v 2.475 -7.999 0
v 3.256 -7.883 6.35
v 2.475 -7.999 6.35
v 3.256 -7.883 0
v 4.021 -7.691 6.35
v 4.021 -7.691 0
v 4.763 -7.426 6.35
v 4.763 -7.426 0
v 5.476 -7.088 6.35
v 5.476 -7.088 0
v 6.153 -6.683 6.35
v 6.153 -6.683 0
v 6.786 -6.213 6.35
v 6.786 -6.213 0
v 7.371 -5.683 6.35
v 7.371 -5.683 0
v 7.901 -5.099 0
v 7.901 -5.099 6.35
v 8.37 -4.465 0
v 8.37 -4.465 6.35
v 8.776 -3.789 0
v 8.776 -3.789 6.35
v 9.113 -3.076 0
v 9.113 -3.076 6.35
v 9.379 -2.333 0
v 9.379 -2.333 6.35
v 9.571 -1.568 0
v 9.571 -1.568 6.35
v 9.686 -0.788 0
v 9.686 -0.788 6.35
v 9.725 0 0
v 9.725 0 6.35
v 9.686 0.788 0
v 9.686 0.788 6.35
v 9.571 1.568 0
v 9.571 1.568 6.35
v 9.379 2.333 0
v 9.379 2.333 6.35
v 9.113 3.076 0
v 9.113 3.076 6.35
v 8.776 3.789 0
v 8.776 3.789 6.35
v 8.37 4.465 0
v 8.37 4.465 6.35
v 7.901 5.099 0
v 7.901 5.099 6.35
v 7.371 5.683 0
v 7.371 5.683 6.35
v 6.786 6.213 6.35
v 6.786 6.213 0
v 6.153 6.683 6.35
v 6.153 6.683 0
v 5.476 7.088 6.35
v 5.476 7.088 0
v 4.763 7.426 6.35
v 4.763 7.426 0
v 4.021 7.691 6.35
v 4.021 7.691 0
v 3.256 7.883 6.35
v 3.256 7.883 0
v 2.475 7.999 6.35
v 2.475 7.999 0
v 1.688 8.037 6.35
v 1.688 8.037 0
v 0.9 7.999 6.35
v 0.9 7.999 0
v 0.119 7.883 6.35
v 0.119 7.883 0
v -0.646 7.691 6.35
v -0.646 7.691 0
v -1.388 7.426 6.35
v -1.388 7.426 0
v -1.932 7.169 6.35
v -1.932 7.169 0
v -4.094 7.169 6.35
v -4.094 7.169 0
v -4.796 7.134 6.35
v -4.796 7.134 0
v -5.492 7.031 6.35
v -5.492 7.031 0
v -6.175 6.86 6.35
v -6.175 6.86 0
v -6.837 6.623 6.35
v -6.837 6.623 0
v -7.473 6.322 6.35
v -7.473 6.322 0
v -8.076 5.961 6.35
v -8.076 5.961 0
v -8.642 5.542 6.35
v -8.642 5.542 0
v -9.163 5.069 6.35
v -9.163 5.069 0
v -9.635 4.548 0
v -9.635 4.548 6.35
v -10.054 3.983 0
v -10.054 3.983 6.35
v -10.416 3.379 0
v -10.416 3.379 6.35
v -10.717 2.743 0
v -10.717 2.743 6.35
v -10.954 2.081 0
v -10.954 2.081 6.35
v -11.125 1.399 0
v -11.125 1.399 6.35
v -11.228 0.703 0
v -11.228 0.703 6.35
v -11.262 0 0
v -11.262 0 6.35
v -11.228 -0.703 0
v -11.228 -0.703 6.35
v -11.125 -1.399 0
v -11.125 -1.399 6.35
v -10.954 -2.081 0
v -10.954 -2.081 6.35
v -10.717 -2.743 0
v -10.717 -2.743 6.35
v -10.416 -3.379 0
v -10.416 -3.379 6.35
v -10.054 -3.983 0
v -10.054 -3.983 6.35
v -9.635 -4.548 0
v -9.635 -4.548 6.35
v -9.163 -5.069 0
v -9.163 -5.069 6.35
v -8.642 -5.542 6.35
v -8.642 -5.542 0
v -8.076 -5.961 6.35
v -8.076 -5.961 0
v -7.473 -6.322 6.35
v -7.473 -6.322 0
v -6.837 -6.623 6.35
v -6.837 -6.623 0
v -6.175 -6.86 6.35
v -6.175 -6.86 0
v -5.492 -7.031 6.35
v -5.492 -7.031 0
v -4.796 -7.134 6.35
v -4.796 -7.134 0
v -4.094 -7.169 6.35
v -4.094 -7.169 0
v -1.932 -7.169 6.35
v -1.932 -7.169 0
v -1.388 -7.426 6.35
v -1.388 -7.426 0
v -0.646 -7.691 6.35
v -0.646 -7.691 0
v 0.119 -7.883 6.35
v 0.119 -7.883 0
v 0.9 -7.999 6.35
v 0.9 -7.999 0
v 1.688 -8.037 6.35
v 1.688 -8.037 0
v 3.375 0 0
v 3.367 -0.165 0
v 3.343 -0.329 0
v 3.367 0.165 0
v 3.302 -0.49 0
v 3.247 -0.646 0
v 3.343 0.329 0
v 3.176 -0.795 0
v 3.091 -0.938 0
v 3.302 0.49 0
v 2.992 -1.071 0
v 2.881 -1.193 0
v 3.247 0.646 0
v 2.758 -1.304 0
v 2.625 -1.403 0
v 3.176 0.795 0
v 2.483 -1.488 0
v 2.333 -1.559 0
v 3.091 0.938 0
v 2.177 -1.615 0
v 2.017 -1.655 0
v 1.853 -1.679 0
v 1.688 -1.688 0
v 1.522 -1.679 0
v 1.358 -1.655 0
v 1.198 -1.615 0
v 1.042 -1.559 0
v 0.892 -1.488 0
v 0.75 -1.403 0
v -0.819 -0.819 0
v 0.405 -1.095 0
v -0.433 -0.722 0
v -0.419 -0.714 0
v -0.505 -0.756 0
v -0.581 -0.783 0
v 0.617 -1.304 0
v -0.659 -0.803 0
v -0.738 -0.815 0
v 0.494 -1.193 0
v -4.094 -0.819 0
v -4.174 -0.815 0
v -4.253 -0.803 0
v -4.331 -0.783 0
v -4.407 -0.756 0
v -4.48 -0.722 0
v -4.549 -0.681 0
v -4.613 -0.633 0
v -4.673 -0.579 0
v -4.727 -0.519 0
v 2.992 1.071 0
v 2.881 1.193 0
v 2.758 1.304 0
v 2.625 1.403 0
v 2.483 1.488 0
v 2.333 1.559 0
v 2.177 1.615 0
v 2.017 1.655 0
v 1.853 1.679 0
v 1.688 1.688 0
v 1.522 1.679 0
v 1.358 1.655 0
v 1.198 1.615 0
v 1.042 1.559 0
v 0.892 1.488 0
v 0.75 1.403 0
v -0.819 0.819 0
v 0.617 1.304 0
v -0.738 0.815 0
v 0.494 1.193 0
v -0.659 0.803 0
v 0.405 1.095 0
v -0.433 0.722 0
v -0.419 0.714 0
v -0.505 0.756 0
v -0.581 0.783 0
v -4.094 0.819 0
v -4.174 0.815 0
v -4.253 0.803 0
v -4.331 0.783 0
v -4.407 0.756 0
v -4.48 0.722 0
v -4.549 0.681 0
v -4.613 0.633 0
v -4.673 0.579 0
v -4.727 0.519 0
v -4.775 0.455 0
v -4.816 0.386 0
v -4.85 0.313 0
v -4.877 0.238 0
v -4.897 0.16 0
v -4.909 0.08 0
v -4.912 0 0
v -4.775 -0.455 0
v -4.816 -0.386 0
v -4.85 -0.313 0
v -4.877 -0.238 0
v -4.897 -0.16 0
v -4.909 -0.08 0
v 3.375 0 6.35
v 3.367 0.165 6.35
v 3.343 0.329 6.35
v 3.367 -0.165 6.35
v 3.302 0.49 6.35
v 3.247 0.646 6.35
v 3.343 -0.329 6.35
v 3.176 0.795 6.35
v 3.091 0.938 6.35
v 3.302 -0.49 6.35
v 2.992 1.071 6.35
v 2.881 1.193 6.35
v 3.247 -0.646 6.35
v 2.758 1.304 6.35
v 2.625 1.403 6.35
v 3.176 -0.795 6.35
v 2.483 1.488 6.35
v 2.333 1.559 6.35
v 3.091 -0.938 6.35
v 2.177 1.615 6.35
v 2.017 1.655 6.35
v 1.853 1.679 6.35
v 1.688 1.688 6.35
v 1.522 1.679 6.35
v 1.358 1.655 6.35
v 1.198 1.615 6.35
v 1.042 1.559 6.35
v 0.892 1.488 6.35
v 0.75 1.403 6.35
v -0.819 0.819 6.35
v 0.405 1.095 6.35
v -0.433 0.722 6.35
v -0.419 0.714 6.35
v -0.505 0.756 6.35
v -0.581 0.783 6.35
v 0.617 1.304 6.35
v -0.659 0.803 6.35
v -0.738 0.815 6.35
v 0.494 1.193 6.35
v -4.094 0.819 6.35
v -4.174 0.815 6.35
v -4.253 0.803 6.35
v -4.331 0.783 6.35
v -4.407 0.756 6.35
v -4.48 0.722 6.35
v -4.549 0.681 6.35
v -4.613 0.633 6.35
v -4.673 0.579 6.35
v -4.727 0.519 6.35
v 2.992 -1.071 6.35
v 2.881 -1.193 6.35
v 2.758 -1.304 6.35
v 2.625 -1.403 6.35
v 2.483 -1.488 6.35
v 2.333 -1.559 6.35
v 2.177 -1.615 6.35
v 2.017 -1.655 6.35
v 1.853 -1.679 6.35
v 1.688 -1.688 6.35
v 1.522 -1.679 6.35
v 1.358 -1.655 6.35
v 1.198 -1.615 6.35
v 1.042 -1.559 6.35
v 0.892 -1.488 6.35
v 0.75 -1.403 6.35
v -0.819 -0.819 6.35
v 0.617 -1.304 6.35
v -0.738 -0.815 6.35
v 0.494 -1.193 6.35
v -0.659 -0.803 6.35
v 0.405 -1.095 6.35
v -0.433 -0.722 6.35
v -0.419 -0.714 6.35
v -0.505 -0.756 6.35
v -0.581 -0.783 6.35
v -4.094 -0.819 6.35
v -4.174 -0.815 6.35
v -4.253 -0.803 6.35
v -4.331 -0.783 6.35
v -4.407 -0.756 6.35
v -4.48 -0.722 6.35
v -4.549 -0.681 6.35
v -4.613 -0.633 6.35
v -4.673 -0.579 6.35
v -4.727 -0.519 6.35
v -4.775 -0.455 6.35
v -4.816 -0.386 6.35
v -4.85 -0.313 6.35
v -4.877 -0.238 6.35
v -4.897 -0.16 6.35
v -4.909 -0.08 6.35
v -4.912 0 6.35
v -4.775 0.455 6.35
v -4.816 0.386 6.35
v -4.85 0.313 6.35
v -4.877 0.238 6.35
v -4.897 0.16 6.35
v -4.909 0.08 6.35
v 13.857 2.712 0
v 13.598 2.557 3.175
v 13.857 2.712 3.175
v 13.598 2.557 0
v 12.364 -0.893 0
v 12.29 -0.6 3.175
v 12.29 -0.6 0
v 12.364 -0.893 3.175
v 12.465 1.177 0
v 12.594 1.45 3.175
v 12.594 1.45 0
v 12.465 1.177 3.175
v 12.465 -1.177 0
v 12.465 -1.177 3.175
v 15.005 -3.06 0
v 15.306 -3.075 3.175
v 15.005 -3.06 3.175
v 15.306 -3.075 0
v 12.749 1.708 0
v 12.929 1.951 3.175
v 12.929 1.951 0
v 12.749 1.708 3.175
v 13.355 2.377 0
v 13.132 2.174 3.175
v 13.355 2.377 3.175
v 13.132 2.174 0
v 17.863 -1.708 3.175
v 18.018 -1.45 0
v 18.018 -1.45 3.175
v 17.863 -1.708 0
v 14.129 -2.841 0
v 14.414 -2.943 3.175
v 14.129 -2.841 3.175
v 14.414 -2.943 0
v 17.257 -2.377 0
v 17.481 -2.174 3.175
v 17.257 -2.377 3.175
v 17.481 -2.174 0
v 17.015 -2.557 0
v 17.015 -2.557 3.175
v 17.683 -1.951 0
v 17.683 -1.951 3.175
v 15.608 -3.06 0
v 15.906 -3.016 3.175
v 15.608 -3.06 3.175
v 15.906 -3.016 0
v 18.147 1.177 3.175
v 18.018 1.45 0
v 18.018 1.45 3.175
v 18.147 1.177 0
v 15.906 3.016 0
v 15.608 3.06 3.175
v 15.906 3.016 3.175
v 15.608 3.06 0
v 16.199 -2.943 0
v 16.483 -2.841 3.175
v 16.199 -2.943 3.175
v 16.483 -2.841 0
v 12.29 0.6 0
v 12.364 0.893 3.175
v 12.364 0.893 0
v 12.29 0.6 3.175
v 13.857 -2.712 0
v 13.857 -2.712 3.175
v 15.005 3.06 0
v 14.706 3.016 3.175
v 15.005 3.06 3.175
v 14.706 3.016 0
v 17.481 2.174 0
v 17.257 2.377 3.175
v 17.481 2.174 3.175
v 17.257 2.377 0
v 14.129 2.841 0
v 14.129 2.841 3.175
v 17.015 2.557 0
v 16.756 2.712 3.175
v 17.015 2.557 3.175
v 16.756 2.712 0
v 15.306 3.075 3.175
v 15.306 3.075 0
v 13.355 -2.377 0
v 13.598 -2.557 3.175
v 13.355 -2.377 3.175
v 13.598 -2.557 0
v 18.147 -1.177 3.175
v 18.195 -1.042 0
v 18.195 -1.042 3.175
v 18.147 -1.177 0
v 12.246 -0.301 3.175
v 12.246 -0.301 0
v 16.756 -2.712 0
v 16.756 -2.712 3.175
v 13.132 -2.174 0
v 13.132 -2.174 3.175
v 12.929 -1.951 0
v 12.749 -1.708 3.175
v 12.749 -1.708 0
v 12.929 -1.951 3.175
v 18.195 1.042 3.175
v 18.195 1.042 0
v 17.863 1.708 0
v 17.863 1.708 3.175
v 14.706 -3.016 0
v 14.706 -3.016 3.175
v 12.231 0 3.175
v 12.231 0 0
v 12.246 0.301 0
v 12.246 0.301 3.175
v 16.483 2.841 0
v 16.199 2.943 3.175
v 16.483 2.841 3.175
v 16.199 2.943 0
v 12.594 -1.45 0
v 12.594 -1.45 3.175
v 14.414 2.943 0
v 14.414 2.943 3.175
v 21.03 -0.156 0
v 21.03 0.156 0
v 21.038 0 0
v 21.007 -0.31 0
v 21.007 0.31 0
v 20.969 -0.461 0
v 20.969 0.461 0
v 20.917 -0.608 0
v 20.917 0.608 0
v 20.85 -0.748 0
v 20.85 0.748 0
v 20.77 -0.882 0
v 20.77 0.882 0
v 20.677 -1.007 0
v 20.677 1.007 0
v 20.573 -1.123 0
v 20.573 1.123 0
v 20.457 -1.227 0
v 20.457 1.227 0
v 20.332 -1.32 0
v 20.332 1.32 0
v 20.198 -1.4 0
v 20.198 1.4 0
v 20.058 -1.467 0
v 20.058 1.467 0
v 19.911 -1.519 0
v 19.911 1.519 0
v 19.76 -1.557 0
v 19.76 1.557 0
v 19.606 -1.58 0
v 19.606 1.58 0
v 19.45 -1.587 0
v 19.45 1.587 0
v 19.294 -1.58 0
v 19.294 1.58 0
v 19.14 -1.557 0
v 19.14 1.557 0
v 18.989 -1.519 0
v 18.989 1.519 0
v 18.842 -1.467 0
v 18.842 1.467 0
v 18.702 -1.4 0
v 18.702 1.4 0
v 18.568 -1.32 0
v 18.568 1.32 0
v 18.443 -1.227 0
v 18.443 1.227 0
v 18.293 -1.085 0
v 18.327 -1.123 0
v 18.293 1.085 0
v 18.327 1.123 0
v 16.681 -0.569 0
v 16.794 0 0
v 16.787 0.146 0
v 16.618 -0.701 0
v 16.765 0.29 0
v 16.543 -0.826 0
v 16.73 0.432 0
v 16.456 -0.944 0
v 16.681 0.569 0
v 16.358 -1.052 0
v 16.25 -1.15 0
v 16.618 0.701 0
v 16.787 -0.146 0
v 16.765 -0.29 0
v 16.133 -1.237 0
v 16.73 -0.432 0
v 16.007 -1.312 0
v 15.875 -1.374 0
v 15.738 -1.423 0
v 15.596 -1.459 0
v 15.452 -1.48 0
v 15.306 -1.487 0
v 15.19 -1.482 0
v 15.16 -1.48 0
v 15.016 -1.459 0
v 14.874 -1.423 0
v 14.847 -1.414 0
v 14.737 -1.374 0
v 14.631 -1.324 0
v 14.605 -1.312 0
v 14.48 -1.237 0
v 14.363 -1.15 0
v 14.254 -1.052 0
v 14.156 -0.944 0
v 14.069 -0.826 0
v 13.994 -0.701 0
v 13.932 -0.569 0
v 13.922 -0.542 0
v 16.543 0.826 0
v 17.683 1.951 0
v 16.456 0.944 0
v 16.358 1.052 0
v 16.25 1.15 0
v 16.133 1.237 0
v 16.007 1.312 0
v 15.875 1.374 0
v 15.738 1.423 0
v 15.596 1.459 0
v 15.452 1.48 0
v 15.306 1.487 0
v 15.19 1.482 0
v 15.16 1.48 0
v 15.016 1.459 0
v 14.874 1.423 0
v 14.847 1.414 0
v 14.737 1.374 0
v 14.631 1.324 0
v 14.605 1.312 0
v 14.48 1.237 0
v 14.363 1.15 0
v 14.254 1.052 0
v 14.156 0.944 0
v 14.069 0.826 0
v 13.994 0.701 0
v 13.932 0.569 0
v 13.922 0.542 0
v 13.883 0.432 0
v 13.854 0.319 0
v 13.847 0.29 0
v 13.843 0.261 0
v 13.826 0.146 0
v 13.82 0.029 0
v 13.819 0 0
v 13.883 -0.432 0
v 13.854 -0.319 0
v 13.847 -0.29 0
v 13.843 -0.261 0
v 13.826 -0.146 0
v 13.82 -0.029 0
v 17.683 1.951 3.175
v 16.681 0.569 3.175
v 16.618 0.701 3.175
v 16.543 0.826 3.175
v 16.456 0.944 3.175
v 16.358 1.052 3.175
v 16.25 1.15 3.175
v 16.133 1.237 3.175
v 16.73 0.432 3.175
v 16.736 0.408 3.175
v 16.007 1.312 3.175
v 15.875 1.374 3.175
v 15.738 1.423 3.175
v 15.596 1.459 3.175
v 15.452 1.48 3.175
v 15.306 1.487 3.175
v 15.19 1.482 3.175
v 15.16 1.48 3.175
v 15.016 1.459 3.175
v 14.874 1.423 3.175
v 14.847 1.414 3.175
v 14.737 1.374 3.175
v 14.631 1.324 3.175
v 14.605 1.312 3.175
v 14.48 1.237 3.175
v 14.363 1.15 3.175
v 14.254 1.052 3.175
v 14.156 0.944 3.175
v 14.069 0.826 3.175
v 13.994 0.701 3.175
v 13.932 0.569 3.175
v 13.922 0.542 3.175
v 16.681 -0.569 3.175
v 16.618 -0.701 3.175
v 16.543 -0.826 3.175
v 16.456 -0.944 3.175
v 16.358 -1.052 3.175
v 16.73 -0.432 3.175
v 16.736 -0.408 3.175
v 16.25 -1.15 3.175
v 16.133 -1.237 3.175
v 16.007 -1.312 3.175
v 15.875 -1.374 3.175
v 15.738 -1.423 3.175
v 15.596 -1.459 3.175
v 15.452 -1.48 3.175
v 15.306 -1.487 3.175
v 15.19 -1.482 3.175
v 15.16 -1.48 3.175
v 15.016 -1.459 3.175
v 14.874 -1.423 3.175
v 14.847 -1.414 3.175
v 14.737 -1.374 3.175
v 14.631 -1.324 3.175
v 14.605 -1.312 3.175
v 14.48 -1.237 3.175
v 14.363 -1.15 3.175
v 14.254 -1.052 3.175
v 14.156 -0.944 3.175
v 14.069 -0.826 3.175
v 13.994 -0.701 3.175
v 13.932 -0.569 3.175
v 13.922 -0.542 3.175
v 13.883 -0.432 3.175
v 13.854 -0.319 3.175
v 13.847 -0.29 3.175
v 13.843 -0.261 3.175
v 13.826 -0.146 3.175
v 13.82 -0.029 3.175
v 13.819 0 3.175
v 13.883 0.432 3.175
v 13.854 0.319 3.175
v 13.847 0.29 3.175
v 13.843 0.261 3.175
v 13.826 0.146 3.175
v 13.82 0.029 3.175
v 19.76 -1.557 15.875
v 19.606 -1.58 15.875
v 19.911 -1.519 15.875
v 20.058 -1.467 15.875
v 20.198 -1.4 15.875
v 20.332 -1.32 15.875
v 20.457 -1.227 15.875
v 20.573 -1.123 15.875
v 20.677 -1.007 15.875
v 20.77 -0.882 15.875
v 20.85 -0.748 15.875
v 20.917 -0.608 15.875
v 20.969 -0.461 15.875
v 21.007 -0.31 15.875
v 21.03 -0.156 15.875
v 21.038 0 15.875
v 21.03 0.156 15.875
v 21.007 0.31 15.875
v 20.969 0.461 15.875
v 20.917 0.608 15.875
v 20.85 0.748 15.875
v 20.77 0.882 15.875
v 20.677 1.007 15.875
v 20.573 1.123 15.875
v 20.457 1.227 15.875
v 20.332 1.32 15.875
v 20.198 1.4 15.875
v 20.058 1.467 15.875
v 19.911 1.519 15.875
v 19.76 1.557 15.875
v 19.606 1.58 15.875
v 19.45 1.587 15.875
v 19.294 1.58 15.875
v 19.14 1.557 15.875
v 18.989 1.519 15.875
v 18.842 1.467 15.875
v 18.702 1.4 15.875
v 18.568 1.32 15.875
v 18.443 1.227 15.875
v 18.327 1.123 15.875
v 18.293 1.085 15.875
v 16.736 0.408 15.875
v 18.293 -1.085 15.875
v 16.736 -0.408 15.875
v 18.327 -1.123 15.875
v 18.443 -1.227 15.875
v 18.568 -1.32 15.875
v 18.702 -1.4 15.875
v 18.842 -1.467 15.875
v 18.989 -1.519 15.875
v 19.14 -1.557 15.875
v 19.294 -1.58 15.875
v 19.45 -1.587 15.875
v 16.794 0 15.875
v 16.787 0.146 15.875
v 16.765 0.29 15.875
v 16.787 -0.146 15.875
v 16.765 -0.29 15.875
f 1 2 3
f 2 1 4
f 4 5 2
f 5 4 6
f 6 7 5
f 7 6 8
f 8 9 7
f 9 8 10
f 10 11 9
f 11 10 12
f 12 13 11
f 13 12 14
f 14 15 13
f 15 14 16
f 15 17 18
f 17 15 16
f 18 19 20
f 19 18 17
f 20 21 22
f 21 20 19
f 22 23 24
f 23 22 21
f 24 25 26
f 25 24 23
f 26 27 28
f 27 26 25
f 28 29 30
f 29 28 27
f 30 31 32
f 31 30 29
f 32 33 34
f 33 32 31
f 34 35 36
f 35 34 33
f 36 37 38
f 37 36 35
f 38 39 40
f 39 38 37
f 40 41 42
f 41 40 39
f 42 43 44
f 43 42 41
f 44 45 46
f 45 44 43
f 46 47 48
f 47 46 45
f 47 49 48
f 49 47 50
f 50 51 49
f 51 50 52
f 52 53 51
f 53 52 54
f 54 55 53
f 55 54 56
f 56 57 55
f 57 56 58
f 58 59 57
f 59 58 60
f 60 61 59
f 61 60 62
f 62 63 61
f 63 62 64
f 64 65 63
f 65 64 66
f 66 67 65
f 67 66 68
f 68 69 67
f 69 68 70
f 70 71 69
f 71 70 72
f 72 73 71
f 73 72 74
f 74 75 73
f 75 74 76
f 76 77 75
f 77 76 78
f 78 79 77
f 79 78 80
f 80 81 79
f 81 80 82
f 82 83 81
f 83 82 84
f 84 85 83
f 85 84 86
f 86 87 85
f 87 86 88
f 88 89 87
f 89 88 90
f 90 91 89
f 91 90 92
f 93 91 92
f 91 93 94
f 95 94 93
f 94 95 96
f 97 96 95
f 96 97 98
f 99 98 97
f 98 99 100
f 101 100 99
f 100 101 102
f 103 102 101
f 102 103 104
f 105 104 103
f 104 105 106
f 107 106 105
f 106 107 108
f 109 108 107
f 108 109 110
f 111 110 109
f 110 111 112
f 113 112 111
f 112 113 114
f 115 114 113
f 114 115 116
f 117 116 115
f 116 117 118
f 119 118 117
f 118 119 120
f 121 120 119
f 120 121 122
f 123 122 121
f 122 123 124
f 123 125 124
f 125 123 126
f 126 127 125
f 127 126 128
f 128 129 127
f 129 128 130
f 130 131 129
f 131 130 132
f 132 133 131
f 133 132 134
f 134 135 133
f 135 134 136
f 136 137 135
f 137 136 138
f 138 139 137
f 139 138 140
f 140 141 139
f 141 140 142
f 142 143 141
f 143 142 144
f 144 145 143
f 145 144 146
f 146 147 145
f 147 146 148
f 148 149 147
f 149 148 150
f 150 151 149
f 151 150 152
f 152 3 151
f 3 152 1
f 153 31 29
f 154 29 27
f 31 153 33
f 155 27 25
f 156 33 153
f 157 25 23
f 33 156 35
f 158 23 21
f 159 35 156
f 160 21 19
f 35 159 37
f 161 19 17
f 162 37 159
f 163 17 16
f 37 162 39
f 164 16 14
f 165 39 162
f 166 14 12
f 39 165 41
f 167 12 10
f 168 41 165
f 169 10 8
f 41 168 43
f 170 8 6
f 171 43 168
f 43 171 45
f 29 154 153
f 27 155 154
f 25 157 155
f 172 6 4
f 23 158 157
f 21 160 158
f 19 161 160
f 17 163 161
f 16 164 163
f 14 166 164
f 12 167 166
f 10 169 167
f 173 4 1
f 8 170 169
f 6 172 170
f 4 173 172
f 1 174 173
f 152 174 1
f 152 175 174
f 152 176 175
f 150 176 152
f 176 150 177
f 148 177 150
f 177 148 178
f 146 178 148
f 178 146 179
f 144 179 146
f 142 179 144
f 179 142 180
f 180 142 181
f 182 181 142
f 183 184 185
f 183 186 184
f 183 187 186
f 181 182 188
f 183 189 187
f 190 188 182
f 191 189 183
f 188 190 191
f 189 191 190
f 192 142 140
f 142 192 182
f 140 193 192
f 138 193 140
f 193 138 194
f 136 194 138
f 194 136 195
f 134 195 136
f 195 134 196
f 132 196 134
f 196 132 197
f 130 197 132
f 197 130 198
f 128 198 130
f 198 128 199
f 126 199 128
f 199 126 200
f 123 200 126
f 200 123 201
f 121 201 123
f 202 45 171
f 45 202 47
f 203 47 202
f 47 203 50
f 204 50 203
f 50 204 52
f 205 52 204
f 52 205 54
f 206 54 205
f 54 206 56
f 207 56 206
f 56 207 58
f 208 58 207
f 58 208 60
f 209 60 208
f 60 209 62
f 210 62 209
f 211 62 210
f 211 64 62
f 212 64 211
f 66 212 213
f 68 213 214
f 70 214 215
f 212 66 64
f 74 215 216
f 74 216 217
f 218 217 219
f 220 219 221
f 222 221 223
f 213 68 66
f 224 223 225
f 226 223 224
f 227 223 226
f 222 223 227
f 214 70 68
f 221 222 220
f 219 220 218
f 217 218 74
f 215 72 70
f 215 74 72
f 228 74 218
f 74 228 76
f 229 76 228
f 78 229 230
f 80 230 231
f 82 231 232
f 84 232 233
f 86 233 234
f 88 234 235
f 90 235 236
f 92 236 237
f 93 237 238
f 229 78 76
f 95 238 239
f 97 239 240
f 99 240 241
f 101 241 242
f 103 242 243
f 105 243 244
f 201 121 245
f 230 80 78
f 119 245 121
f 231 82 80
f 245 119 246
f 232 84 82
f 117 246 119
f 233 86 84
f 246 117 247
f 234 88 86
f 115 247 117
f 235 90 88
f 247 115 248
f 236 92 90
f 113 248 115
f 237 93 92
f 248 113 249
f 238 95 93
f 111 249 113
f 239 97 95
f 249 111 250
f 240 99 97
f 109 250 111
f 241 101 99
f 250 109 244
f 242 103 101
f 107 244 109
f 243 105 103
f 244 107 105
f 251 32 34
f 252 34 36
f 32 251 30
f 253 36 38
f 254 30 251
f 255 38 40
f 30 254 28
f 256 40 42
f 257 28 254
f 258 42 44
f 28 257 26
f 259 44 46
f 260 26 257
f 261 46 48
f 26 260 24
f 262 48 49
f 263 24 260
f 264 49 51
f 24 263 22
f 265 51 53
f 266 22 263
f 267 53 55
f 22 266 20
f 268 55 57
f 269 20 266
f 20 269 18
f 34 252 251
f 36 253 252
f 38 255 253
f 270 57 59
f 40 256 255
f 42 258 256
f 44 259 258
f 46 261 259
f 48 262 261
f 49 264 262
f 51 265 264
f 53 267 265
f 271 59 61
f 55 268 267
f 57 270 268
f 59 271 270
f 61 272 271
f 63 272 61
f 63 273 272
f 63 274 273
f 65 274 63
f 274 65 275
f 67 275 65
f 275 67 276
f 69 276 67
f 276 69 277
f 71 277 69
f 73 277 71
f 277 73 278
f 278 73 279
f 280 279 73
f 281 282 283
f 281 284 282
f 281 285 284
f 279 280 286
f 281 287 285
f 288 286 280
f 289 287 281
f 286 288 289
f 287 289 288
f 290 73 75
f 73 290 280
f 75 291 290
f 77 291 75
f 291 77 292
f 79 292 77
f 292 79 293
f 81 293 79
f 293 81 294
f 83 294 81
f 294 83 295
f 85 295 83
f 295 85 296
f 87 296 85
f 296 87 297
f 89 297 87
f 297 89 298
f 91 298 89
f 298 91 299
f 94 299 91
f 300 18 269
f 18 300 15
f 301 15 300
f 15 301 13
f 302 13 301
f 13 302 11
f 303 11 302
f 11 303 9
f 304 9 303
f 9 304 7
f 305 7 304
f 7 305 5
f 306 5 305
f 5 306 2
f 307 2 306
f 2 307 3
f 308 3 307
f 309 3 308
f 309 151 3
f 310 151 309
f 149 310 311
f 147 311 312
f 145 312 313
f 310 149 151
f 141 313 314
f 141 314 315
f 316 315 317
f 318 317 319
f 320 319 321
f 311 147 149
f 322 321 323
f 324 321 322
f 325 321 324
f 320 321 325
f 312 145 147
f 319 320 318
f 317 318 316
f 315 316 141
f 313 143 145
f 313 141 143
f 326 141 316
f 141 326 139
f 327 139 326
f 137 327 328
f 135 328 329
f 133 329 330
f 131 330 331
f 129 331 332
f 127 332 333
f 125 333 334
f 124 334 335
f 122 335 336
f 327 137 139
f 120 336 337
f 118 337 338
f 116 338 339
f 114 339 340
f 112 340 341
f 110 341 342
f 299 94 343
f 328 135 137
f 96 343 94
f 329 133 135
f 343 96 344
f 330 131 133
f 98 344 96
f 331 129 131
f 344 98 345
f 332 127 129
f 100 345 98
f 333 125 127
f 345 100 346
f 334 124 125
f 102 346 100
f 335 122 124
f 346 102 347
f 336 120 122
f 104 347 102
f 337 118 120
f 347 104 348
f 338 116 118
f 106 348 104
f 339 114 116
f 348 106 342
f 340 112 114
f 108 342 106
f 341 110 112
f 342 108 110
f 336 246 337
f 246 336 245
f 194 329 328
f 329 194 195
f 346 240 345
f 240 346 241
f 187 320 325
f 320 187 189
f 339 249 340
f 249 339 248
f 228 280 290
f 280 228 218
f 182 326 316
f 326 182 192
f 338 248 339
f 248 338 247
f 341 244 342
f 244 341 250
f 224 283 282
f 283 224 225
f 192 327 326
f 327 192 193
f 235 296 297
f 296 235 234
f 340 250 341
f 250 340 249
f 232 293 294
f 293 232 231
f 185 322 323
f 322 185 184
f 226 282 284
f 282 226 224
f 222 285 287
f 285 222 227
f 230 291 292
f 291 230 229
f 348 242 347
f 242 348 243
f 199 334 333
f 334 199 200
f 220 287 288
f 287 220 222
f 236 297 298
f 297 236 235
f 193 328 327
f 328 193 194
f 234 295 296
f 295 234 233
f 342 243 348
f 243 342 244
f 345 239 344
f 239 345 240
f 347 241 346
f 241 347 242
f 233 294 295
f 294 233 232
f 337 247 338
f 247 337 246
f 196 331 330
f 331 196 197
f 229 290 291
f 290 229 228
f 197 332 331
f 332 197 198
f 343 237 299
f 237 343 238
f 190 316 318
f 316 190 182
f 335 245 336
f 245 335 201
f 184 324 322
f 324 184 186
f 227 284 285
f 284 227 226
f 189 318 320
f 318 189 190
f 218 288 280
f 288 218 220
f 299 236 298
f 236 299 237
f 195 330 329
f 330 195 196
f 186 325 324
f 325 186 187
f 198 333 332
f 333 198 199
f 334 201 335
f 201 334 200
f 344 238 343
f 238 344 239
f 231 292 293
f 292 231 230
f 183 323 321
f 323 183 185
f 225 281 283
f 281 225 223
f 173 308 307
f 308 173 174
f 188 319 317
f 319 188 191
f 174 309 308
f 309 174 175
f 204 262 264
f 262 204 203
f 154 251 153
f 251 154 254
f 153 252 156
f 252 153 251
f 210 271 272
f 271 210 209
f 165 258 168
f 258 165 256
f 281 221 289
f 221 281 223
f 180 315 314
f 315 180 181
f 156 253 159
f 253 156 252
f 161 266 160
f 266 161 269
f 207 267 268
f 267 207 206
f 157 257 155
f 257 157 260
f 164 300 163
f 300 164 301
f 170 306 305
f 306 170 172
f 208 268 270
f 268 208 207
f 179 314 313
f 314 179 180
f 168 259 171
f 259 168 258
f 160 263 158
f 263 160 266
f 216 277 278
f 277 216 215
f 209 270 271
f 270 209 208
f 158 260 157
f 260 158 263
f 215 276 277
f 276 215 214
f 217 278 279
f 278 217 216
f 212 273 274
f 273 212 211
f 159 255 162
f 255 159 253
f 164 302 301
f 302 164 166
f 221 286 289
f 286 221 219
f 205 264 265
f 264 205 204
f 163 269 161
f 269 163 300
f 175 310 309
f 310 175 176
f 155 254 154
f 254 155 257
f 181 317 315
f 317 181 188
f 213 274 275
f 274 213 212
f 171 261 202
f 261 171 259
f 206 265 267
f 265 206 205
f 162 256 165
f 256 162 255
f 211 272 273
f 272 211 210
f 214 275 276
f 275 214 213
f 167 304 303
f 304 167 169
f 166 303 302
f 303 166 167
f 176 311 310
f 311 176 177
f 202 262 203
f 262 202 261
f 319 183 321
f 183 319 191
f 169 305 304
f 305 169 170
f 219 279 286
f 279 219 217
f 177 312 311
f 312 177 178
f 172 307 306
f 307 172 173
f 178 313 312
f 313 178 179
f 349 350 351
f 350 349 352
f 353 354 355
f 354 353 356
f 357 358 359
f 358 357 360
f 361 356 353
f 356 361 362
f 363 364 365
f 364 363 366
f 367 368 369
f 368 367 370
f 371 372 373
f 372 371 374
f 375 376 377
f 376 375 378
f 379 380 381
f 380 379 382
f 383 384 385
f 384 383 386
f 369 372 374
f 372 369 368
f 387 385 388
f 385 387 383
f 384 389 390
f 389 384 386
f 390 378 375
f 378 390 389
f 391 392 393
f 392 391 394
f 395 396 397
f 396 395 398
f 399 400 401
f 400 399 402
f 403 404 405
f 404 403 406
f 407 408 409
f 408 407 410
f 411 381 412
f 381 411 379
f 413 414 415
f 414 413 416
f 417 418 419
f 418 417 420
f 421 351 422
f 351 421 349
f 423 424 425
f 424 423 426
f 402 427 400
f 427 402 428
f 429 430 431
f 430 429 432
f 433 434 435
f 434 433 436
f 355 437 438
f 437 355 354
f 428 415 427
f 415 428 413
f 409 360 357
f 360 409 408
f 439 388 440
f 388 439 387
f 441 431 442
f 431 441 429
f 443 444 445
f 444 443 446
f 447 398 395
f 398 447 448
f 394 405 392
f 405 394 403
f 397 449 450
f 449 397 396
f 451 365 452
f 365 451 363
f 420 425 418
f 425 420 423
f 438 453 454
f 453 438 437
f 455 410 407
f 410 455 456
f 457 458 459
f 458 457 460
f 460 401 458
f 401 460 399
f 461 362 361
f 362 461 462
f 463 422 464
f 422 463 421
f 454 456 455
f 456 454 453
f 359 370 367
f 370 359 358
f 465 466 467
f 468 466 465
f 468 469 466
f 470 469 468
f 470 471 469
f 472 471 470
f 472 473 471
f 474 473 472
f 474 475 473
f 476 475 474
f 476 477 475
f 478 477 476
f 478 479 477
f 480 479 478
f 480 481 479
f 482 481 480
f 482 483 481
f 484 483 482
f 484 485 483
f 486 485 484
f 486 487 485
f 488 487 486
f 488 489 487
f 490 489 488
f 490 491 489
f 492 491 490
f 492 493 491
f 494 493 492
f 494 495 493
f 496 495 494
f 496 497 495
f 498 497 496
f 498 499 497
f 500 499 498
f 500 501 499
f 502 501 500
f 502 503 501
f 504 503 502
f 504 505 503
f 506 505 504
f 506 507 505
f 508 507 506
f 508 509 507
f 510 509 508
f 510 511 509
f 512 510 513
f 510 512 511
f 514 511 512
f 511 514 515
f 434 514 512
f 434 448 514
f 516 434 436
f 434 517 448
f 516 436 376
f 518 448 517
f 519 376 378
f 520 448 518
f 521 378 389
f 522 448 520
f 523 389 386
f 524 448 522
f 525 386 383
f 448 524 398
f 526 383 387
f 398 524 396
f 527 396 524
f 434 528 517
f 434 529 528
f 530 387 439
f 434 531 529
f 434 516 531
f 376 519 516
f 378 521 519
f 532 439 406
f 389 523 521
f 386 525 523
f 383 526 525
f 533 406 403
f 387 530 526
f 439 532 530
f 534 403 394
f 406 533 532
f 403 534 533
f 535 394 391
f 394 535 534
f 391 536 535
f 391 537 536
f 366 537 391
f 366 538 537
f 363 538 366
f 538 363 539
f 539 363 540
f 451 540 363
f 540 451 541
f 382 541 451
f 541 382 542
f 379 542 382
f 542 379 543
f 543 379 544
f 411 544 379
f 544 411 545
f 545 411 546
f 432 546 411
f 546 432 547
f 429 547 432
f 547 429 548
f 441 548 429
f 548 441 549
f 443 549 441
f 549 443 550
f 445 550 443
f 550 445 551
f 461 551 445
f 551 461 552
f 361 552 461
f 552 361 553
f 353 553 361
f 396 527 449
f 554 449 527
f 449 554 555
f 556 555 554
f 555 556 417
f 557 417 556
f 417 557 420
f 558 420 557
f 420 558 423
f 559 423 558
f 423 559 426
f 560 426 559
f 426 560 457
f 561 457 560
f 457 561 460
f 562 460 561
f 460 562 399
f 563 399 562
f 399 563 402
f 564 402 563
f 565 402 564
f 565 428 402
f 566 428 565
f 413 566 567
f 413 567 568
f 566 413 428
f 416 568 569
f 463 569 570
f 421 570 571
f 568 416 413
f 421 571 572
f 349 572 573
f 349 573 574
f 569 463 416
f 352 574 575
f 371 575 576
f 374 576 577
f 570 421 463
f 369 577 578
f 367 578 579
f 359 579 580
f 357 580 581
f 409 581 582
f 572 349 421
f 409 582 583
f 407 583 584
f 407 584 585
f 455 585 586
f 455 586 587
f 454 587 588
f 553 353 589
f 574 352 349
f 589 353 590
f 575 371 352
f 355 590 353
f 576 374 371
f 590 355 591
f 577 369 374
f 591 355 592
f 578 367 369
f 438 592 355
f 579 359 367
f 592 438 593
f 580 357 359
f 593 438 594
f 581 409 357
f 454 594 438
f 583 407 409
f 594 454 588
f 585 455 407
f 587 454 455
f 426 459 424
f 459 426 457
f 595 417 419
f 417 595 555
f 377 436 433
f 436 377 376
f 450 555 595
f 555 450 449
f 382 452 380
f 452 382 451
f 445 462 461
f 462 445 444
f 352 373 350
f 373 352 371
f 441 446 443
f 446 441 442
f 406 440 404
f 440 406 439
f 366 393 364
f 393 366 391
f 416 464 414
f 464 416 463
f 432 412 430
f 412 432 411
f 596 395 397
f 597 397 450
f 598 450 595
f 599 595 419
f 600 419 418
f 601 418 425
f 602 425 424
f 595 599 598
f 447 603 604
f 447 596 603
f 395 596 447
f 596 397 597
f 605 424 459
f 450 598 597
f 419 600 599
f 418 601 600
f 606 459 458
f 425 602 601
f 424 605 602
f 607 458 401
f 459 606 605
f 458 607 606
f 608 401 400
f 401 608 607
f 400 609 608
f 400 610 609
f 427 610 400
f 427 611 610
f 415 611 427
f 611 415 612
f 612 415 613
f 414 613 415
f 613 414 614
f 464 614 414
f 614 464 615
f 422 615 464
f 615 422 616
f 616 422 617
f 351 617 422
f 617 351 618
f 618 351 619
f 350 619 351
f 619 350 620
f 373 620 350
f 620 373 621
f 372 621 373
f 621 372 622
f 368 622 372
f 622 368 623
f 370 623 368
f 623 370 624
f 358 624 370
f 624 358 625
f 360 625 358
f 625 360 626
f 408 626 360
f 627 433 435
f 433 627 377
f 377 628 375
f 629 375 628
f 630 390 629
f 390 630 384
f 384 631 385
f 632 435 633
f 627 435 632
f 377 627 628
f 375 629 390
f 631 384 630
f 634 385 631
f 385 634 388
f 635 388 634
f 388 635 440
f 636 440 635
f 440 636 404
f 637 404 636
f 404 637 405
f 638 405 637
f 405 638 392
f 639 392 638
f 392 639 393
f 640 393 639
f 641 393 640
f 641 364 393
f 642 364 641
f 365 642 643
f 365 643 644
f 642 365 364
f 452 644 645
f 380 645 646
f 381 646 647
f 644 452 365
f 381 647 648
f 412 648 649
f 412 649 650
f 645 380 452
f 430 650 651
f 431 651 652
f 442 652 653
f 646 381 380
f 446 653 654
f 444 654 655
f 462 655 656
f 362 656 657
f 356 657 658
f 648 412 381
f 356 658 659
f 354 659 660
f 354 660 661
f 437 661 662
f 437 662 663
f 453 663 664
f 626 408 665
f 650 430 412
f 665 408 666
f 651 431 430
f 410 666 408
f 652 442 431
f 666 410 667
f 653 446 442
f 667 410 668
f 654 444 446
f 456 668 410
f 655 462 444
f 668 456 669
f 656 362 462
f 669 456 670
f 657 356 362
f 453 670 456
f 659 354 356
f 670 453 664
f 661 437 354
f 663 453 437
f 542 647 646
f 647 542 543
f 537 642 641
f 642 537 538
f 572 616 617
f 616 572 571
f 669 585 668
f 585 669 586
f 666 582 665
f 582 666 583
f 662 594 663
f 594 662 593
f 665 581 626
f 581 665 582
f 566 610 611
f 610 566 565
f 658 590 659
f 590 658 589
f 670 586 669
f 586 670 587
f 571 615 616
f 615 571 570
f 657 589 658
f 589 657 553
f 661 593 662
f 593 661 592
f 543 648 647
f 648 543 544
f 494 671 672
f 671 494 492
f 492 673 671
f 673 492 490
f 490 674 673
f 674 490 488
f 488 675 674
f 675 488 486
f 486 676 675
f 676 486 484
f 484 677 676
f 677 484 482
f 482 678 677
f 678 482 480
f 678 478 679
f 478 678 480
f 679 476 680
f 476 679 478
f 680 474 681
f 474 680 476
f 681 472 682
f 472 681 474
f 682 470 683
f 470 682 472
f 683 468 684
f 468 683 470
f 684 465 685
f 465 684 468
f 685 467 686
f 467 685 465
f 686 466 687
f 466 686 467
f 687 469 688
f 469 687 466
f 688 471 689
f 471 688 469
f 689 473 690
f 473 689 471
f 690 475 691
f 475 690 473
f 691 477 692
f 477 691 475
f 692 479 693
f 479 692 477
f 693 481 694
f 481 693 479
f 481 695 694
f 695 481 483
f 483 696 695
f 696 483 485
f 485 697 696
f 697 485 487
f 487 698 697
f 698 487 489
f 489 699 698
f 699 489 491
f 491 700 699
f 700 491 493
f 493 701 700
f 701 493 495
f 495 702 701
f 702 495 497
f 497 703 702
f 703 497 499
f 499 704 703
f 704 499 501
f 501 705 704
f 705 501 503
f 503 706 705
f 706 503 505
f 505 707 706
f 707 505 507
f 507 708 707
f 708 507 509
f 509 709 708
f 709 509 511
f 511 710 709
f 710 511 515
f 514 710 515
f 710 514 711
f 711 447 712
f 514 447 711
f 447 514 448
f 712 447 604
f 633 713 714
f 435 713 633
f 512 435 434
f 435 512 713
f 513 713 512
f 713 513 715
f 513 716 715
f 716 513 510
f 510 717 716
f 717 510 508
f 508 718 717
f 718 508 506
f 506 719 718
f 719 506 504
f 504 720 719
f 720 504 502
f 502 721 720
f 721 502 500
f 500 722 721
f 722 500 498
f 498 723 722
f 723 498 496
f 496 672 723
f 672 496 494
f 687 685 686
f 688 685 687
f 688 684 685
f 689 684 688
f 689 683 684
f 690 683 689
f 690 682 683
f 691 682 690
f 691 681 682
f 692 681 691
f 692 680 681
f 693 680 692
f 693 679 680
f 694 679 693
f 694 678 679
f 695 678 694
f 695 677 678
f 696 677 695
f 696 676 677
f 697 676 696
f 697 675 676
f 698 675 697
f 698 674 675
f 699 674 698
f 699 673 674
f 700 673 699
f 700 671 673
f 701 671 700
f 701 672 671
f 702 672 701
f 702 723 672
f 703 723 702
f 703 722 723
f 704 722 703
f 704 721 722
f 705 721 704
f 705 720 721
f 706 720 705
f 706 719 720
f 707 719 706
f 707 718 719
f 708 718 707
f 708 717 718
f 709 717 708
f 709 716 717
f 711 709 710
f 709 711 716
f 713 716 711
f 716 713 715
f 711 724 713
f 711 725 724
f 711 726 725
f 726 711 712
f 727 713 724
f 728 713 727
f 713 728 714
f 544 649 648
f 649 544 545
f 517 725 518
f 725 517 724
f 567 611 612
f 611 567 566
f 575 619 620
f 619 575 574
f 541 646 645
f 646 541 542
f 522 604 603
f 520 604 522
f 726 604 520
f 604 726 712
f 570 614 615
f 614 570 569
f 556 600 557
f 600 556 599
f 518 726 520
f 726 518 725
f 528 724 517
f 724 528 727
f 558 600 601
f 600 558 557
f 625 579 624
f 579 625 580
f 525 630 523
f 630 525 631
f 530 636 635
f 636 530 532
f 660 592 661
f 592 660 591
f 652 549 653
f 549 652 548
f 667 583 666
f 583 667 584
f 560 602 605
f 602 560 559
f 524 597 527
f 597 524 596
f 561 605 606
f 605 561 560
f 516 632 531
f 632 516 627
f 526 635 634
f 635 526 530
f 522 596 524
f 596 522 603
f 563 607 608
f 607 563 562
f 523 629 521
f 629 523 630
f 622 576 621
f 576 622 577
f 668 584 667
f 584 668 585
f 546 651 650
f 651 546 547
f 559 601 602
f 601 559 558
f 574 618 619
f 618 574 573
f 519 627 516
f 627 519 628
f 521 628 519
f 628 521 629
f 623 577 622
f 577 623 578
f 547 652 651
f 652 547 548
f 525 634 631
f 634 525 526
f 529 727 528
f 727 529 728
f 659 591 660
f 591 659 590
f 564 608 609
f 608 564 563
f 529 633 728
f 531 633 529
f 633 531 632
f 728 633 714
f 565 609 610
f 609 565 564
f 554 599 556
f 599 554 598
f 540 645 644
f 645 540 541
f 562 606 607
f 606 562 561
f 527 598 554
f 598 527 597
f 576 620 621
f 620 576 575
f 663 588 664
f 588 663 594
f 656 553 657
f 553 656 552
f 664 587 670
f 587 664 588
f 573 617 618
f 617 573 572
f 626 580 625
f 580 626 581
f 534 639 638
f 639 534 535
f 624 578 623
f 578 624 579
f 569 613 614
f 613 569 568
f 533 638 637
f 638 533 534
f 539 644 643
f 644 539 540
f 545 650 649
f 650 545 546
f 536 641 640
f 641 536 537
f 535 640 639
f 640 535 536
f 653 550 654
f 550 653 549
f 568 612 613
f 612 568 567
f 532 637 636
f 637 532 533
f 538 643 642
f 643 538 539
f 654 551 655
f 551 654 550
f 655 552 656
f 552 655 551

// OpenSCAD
// Input parameters
TubingOD = 1/8; // tubing outer diameter
TubingID = 1/16; // tubing inner diameter
TubingUnits = "inches"; // units of input parameters: "inches" or "mm"

// Design parameters
SlotRatio = 3; // ratio of slot length to width
OpenTolerance = 0.2; // outer diameter print tolerance in mm
ClosedTolerance = 0.05; // closed slot print tolerance in mm
Margin = 2; // multiple of TubingOD to use as printed area around slot

// Calculated parameters
conversionFactor = (TubingUnits == "inches") ? 25.4 : (TubingUnits == "mm") ? 1 : undef;
TubingIDc = TubingID * conversionFactor; // Tubing inner diameter in mm
TubingODc = TubingOD * conversionFactor; // Tubing outer diameter in mm
TubingCompressed = TubingODc-TubingIDc; // compressed tubing wall thickness in mm
OpenWidth = TubingODc + OpenTolerance; // open slot width in mm
ClosedWidth = TubingCompressed + ClosedTolerance; // closed slot width in mm
OpenLength = OpenWidth; // open slot length in mm
ClosedLength = SlotRatio * ClosedWidth; // closed slot length in mm
MarginMM = Margin*TubingODc; // margin distance in mm
ThinBodyLength = ClosedLength + 2*MarginMM; // thin body length in mm (margin each end)
ThinBodyWidth = ClosedWidth + 2*MarginMM; // thin body width in mm (margin each side)
OpenBodyDiameter = OpenWidth + 2*MarginMM; // thick body diameter in mm
OpenBodyRadius = OpenBodyDiameter/2;
Depth = MarginMM; // body depth in mm
BridgeApexFraction = 0.6; // 0–1 along closed slot length from its far end toward the open slot: larger values give a bigger bump to retain tubing in closed position
BridgeBaseLength = OpenWidth; // base length of connecting triangle
BungDepthMultiplier = 2.5; // bung is this many times deeper than body depth
BungTolerance = OpenTolerance; // clearance on bung profile to allow insertion
CollarThickness = max(MarginMM/4, 1); // collar wall thickness around tubing
CollarHeight = Depth/2; // collar height
TubeHoleTolerance = OpenTolerance; // clearance for tubing through bung
BungOffset = OpenLength/2 + OpenBodyRadius + MarginMM + max(BridgeBaseLength/2, OpenWidth/2); // place bung one margin away

$fn = 64;

// 2D capsule used for rounded bodies and slots
module capsule2d(length, width) {
  r = width/2;
  hull() {
    translate([r, 0]) circle(r = r);
    translate([length - r, 0]) circle(r = r);
  }
}

// Centered capsule helper
module capsule2d_centered(length, width) {
  translate([-length/2, 0]) capsule2d(length, width);
}

// Bung 2D profile (triangle + circle) with configurable clearance
module bung_profile_2d(tol = 0) {
  baseLen = max(BridgeBaseLength - tol, tol);
  circleD = max(OpenWidth - tol, tol);
  apexX = -ClosedLength + ClosedLength*BridgeApexFraction;
  union() {
    translate([OpenLength/2, 0]) circle(d = circleD);
    polygon(points = [
      [apexX, 0],
      [OpenLength/2, -baseLen/2],
      [OpenLength/2,  baseLen/2]
    ]);
  }
}

// Bung solid with retaining collar
module bung() {
  holeD = TubingODc - TubeHoleTolerance;
  holeR = holeD/2;
  collarOuterR = holeR + CollarThickness;
  bungDepth = BungDepthMultiplier * Depth;
  collarX = -ClosedLength/2; // centered on midpoint of closed slot

  difference() {
    union() {
      linear_extrude(bungDepth)
        bung_profile_2d(BungTolerance);

      // Collar at base around the tubing
      translate([collarX, 0, 0])
        difference() {
          cylinder(h = CollarHeight, r = collarOuterR, center = false);
          translate([0, 0, -1])
            cylinder(h = CollarHeight + 2, r = holeR, center = false);
        }
    }

    // Through-hole for tubing
    translate([collarX, 0, -1])
      cylinder(h = bungDepth + CollarHeight + 2, r = holeR, center = false);
  }
}

// -----------------------------
// Model
// -----------------------------
module pinch_slider_body() {
  difference() {
    // Body
    linear_extrude(Depth) {
      union() {
        translate([-ClosedLength/2, 0])
          capsule2d_centered(ThinBodyLength, ThinBodyWidth);
        translate([OpenLength/2, 0])
          circle(r = OpenBodyRadius);
      }
    }

    // Slot
    translate([-ClosedLength/2, 0, 0])
      linear_extrude(Depth)
        capsule2d_centered(ClosedLength, ClosedWidth);

    // Triangular cutout joining far closed end to open center
    linear_extrude(Depth)
      polygon(points = [
        [-ClosedLength + ClosedLength*BridgeApexFraction, 0], // apex along closed slot
        [OpenLength/2, -BridgeBaseLength/2],
        [OpenLength/2,  BridgeBaseLength/2]
      ]);

    // Open slot is now a circular cutout
    translate([OpenLength/2, 0, 0])
      cylinder(h = Depth, d = OpenWidth, center = false);
  }
}

// Assemble body and bung with spacing
pinch_slider_body();
translate([BungOffset, 0, 0]) bung();
